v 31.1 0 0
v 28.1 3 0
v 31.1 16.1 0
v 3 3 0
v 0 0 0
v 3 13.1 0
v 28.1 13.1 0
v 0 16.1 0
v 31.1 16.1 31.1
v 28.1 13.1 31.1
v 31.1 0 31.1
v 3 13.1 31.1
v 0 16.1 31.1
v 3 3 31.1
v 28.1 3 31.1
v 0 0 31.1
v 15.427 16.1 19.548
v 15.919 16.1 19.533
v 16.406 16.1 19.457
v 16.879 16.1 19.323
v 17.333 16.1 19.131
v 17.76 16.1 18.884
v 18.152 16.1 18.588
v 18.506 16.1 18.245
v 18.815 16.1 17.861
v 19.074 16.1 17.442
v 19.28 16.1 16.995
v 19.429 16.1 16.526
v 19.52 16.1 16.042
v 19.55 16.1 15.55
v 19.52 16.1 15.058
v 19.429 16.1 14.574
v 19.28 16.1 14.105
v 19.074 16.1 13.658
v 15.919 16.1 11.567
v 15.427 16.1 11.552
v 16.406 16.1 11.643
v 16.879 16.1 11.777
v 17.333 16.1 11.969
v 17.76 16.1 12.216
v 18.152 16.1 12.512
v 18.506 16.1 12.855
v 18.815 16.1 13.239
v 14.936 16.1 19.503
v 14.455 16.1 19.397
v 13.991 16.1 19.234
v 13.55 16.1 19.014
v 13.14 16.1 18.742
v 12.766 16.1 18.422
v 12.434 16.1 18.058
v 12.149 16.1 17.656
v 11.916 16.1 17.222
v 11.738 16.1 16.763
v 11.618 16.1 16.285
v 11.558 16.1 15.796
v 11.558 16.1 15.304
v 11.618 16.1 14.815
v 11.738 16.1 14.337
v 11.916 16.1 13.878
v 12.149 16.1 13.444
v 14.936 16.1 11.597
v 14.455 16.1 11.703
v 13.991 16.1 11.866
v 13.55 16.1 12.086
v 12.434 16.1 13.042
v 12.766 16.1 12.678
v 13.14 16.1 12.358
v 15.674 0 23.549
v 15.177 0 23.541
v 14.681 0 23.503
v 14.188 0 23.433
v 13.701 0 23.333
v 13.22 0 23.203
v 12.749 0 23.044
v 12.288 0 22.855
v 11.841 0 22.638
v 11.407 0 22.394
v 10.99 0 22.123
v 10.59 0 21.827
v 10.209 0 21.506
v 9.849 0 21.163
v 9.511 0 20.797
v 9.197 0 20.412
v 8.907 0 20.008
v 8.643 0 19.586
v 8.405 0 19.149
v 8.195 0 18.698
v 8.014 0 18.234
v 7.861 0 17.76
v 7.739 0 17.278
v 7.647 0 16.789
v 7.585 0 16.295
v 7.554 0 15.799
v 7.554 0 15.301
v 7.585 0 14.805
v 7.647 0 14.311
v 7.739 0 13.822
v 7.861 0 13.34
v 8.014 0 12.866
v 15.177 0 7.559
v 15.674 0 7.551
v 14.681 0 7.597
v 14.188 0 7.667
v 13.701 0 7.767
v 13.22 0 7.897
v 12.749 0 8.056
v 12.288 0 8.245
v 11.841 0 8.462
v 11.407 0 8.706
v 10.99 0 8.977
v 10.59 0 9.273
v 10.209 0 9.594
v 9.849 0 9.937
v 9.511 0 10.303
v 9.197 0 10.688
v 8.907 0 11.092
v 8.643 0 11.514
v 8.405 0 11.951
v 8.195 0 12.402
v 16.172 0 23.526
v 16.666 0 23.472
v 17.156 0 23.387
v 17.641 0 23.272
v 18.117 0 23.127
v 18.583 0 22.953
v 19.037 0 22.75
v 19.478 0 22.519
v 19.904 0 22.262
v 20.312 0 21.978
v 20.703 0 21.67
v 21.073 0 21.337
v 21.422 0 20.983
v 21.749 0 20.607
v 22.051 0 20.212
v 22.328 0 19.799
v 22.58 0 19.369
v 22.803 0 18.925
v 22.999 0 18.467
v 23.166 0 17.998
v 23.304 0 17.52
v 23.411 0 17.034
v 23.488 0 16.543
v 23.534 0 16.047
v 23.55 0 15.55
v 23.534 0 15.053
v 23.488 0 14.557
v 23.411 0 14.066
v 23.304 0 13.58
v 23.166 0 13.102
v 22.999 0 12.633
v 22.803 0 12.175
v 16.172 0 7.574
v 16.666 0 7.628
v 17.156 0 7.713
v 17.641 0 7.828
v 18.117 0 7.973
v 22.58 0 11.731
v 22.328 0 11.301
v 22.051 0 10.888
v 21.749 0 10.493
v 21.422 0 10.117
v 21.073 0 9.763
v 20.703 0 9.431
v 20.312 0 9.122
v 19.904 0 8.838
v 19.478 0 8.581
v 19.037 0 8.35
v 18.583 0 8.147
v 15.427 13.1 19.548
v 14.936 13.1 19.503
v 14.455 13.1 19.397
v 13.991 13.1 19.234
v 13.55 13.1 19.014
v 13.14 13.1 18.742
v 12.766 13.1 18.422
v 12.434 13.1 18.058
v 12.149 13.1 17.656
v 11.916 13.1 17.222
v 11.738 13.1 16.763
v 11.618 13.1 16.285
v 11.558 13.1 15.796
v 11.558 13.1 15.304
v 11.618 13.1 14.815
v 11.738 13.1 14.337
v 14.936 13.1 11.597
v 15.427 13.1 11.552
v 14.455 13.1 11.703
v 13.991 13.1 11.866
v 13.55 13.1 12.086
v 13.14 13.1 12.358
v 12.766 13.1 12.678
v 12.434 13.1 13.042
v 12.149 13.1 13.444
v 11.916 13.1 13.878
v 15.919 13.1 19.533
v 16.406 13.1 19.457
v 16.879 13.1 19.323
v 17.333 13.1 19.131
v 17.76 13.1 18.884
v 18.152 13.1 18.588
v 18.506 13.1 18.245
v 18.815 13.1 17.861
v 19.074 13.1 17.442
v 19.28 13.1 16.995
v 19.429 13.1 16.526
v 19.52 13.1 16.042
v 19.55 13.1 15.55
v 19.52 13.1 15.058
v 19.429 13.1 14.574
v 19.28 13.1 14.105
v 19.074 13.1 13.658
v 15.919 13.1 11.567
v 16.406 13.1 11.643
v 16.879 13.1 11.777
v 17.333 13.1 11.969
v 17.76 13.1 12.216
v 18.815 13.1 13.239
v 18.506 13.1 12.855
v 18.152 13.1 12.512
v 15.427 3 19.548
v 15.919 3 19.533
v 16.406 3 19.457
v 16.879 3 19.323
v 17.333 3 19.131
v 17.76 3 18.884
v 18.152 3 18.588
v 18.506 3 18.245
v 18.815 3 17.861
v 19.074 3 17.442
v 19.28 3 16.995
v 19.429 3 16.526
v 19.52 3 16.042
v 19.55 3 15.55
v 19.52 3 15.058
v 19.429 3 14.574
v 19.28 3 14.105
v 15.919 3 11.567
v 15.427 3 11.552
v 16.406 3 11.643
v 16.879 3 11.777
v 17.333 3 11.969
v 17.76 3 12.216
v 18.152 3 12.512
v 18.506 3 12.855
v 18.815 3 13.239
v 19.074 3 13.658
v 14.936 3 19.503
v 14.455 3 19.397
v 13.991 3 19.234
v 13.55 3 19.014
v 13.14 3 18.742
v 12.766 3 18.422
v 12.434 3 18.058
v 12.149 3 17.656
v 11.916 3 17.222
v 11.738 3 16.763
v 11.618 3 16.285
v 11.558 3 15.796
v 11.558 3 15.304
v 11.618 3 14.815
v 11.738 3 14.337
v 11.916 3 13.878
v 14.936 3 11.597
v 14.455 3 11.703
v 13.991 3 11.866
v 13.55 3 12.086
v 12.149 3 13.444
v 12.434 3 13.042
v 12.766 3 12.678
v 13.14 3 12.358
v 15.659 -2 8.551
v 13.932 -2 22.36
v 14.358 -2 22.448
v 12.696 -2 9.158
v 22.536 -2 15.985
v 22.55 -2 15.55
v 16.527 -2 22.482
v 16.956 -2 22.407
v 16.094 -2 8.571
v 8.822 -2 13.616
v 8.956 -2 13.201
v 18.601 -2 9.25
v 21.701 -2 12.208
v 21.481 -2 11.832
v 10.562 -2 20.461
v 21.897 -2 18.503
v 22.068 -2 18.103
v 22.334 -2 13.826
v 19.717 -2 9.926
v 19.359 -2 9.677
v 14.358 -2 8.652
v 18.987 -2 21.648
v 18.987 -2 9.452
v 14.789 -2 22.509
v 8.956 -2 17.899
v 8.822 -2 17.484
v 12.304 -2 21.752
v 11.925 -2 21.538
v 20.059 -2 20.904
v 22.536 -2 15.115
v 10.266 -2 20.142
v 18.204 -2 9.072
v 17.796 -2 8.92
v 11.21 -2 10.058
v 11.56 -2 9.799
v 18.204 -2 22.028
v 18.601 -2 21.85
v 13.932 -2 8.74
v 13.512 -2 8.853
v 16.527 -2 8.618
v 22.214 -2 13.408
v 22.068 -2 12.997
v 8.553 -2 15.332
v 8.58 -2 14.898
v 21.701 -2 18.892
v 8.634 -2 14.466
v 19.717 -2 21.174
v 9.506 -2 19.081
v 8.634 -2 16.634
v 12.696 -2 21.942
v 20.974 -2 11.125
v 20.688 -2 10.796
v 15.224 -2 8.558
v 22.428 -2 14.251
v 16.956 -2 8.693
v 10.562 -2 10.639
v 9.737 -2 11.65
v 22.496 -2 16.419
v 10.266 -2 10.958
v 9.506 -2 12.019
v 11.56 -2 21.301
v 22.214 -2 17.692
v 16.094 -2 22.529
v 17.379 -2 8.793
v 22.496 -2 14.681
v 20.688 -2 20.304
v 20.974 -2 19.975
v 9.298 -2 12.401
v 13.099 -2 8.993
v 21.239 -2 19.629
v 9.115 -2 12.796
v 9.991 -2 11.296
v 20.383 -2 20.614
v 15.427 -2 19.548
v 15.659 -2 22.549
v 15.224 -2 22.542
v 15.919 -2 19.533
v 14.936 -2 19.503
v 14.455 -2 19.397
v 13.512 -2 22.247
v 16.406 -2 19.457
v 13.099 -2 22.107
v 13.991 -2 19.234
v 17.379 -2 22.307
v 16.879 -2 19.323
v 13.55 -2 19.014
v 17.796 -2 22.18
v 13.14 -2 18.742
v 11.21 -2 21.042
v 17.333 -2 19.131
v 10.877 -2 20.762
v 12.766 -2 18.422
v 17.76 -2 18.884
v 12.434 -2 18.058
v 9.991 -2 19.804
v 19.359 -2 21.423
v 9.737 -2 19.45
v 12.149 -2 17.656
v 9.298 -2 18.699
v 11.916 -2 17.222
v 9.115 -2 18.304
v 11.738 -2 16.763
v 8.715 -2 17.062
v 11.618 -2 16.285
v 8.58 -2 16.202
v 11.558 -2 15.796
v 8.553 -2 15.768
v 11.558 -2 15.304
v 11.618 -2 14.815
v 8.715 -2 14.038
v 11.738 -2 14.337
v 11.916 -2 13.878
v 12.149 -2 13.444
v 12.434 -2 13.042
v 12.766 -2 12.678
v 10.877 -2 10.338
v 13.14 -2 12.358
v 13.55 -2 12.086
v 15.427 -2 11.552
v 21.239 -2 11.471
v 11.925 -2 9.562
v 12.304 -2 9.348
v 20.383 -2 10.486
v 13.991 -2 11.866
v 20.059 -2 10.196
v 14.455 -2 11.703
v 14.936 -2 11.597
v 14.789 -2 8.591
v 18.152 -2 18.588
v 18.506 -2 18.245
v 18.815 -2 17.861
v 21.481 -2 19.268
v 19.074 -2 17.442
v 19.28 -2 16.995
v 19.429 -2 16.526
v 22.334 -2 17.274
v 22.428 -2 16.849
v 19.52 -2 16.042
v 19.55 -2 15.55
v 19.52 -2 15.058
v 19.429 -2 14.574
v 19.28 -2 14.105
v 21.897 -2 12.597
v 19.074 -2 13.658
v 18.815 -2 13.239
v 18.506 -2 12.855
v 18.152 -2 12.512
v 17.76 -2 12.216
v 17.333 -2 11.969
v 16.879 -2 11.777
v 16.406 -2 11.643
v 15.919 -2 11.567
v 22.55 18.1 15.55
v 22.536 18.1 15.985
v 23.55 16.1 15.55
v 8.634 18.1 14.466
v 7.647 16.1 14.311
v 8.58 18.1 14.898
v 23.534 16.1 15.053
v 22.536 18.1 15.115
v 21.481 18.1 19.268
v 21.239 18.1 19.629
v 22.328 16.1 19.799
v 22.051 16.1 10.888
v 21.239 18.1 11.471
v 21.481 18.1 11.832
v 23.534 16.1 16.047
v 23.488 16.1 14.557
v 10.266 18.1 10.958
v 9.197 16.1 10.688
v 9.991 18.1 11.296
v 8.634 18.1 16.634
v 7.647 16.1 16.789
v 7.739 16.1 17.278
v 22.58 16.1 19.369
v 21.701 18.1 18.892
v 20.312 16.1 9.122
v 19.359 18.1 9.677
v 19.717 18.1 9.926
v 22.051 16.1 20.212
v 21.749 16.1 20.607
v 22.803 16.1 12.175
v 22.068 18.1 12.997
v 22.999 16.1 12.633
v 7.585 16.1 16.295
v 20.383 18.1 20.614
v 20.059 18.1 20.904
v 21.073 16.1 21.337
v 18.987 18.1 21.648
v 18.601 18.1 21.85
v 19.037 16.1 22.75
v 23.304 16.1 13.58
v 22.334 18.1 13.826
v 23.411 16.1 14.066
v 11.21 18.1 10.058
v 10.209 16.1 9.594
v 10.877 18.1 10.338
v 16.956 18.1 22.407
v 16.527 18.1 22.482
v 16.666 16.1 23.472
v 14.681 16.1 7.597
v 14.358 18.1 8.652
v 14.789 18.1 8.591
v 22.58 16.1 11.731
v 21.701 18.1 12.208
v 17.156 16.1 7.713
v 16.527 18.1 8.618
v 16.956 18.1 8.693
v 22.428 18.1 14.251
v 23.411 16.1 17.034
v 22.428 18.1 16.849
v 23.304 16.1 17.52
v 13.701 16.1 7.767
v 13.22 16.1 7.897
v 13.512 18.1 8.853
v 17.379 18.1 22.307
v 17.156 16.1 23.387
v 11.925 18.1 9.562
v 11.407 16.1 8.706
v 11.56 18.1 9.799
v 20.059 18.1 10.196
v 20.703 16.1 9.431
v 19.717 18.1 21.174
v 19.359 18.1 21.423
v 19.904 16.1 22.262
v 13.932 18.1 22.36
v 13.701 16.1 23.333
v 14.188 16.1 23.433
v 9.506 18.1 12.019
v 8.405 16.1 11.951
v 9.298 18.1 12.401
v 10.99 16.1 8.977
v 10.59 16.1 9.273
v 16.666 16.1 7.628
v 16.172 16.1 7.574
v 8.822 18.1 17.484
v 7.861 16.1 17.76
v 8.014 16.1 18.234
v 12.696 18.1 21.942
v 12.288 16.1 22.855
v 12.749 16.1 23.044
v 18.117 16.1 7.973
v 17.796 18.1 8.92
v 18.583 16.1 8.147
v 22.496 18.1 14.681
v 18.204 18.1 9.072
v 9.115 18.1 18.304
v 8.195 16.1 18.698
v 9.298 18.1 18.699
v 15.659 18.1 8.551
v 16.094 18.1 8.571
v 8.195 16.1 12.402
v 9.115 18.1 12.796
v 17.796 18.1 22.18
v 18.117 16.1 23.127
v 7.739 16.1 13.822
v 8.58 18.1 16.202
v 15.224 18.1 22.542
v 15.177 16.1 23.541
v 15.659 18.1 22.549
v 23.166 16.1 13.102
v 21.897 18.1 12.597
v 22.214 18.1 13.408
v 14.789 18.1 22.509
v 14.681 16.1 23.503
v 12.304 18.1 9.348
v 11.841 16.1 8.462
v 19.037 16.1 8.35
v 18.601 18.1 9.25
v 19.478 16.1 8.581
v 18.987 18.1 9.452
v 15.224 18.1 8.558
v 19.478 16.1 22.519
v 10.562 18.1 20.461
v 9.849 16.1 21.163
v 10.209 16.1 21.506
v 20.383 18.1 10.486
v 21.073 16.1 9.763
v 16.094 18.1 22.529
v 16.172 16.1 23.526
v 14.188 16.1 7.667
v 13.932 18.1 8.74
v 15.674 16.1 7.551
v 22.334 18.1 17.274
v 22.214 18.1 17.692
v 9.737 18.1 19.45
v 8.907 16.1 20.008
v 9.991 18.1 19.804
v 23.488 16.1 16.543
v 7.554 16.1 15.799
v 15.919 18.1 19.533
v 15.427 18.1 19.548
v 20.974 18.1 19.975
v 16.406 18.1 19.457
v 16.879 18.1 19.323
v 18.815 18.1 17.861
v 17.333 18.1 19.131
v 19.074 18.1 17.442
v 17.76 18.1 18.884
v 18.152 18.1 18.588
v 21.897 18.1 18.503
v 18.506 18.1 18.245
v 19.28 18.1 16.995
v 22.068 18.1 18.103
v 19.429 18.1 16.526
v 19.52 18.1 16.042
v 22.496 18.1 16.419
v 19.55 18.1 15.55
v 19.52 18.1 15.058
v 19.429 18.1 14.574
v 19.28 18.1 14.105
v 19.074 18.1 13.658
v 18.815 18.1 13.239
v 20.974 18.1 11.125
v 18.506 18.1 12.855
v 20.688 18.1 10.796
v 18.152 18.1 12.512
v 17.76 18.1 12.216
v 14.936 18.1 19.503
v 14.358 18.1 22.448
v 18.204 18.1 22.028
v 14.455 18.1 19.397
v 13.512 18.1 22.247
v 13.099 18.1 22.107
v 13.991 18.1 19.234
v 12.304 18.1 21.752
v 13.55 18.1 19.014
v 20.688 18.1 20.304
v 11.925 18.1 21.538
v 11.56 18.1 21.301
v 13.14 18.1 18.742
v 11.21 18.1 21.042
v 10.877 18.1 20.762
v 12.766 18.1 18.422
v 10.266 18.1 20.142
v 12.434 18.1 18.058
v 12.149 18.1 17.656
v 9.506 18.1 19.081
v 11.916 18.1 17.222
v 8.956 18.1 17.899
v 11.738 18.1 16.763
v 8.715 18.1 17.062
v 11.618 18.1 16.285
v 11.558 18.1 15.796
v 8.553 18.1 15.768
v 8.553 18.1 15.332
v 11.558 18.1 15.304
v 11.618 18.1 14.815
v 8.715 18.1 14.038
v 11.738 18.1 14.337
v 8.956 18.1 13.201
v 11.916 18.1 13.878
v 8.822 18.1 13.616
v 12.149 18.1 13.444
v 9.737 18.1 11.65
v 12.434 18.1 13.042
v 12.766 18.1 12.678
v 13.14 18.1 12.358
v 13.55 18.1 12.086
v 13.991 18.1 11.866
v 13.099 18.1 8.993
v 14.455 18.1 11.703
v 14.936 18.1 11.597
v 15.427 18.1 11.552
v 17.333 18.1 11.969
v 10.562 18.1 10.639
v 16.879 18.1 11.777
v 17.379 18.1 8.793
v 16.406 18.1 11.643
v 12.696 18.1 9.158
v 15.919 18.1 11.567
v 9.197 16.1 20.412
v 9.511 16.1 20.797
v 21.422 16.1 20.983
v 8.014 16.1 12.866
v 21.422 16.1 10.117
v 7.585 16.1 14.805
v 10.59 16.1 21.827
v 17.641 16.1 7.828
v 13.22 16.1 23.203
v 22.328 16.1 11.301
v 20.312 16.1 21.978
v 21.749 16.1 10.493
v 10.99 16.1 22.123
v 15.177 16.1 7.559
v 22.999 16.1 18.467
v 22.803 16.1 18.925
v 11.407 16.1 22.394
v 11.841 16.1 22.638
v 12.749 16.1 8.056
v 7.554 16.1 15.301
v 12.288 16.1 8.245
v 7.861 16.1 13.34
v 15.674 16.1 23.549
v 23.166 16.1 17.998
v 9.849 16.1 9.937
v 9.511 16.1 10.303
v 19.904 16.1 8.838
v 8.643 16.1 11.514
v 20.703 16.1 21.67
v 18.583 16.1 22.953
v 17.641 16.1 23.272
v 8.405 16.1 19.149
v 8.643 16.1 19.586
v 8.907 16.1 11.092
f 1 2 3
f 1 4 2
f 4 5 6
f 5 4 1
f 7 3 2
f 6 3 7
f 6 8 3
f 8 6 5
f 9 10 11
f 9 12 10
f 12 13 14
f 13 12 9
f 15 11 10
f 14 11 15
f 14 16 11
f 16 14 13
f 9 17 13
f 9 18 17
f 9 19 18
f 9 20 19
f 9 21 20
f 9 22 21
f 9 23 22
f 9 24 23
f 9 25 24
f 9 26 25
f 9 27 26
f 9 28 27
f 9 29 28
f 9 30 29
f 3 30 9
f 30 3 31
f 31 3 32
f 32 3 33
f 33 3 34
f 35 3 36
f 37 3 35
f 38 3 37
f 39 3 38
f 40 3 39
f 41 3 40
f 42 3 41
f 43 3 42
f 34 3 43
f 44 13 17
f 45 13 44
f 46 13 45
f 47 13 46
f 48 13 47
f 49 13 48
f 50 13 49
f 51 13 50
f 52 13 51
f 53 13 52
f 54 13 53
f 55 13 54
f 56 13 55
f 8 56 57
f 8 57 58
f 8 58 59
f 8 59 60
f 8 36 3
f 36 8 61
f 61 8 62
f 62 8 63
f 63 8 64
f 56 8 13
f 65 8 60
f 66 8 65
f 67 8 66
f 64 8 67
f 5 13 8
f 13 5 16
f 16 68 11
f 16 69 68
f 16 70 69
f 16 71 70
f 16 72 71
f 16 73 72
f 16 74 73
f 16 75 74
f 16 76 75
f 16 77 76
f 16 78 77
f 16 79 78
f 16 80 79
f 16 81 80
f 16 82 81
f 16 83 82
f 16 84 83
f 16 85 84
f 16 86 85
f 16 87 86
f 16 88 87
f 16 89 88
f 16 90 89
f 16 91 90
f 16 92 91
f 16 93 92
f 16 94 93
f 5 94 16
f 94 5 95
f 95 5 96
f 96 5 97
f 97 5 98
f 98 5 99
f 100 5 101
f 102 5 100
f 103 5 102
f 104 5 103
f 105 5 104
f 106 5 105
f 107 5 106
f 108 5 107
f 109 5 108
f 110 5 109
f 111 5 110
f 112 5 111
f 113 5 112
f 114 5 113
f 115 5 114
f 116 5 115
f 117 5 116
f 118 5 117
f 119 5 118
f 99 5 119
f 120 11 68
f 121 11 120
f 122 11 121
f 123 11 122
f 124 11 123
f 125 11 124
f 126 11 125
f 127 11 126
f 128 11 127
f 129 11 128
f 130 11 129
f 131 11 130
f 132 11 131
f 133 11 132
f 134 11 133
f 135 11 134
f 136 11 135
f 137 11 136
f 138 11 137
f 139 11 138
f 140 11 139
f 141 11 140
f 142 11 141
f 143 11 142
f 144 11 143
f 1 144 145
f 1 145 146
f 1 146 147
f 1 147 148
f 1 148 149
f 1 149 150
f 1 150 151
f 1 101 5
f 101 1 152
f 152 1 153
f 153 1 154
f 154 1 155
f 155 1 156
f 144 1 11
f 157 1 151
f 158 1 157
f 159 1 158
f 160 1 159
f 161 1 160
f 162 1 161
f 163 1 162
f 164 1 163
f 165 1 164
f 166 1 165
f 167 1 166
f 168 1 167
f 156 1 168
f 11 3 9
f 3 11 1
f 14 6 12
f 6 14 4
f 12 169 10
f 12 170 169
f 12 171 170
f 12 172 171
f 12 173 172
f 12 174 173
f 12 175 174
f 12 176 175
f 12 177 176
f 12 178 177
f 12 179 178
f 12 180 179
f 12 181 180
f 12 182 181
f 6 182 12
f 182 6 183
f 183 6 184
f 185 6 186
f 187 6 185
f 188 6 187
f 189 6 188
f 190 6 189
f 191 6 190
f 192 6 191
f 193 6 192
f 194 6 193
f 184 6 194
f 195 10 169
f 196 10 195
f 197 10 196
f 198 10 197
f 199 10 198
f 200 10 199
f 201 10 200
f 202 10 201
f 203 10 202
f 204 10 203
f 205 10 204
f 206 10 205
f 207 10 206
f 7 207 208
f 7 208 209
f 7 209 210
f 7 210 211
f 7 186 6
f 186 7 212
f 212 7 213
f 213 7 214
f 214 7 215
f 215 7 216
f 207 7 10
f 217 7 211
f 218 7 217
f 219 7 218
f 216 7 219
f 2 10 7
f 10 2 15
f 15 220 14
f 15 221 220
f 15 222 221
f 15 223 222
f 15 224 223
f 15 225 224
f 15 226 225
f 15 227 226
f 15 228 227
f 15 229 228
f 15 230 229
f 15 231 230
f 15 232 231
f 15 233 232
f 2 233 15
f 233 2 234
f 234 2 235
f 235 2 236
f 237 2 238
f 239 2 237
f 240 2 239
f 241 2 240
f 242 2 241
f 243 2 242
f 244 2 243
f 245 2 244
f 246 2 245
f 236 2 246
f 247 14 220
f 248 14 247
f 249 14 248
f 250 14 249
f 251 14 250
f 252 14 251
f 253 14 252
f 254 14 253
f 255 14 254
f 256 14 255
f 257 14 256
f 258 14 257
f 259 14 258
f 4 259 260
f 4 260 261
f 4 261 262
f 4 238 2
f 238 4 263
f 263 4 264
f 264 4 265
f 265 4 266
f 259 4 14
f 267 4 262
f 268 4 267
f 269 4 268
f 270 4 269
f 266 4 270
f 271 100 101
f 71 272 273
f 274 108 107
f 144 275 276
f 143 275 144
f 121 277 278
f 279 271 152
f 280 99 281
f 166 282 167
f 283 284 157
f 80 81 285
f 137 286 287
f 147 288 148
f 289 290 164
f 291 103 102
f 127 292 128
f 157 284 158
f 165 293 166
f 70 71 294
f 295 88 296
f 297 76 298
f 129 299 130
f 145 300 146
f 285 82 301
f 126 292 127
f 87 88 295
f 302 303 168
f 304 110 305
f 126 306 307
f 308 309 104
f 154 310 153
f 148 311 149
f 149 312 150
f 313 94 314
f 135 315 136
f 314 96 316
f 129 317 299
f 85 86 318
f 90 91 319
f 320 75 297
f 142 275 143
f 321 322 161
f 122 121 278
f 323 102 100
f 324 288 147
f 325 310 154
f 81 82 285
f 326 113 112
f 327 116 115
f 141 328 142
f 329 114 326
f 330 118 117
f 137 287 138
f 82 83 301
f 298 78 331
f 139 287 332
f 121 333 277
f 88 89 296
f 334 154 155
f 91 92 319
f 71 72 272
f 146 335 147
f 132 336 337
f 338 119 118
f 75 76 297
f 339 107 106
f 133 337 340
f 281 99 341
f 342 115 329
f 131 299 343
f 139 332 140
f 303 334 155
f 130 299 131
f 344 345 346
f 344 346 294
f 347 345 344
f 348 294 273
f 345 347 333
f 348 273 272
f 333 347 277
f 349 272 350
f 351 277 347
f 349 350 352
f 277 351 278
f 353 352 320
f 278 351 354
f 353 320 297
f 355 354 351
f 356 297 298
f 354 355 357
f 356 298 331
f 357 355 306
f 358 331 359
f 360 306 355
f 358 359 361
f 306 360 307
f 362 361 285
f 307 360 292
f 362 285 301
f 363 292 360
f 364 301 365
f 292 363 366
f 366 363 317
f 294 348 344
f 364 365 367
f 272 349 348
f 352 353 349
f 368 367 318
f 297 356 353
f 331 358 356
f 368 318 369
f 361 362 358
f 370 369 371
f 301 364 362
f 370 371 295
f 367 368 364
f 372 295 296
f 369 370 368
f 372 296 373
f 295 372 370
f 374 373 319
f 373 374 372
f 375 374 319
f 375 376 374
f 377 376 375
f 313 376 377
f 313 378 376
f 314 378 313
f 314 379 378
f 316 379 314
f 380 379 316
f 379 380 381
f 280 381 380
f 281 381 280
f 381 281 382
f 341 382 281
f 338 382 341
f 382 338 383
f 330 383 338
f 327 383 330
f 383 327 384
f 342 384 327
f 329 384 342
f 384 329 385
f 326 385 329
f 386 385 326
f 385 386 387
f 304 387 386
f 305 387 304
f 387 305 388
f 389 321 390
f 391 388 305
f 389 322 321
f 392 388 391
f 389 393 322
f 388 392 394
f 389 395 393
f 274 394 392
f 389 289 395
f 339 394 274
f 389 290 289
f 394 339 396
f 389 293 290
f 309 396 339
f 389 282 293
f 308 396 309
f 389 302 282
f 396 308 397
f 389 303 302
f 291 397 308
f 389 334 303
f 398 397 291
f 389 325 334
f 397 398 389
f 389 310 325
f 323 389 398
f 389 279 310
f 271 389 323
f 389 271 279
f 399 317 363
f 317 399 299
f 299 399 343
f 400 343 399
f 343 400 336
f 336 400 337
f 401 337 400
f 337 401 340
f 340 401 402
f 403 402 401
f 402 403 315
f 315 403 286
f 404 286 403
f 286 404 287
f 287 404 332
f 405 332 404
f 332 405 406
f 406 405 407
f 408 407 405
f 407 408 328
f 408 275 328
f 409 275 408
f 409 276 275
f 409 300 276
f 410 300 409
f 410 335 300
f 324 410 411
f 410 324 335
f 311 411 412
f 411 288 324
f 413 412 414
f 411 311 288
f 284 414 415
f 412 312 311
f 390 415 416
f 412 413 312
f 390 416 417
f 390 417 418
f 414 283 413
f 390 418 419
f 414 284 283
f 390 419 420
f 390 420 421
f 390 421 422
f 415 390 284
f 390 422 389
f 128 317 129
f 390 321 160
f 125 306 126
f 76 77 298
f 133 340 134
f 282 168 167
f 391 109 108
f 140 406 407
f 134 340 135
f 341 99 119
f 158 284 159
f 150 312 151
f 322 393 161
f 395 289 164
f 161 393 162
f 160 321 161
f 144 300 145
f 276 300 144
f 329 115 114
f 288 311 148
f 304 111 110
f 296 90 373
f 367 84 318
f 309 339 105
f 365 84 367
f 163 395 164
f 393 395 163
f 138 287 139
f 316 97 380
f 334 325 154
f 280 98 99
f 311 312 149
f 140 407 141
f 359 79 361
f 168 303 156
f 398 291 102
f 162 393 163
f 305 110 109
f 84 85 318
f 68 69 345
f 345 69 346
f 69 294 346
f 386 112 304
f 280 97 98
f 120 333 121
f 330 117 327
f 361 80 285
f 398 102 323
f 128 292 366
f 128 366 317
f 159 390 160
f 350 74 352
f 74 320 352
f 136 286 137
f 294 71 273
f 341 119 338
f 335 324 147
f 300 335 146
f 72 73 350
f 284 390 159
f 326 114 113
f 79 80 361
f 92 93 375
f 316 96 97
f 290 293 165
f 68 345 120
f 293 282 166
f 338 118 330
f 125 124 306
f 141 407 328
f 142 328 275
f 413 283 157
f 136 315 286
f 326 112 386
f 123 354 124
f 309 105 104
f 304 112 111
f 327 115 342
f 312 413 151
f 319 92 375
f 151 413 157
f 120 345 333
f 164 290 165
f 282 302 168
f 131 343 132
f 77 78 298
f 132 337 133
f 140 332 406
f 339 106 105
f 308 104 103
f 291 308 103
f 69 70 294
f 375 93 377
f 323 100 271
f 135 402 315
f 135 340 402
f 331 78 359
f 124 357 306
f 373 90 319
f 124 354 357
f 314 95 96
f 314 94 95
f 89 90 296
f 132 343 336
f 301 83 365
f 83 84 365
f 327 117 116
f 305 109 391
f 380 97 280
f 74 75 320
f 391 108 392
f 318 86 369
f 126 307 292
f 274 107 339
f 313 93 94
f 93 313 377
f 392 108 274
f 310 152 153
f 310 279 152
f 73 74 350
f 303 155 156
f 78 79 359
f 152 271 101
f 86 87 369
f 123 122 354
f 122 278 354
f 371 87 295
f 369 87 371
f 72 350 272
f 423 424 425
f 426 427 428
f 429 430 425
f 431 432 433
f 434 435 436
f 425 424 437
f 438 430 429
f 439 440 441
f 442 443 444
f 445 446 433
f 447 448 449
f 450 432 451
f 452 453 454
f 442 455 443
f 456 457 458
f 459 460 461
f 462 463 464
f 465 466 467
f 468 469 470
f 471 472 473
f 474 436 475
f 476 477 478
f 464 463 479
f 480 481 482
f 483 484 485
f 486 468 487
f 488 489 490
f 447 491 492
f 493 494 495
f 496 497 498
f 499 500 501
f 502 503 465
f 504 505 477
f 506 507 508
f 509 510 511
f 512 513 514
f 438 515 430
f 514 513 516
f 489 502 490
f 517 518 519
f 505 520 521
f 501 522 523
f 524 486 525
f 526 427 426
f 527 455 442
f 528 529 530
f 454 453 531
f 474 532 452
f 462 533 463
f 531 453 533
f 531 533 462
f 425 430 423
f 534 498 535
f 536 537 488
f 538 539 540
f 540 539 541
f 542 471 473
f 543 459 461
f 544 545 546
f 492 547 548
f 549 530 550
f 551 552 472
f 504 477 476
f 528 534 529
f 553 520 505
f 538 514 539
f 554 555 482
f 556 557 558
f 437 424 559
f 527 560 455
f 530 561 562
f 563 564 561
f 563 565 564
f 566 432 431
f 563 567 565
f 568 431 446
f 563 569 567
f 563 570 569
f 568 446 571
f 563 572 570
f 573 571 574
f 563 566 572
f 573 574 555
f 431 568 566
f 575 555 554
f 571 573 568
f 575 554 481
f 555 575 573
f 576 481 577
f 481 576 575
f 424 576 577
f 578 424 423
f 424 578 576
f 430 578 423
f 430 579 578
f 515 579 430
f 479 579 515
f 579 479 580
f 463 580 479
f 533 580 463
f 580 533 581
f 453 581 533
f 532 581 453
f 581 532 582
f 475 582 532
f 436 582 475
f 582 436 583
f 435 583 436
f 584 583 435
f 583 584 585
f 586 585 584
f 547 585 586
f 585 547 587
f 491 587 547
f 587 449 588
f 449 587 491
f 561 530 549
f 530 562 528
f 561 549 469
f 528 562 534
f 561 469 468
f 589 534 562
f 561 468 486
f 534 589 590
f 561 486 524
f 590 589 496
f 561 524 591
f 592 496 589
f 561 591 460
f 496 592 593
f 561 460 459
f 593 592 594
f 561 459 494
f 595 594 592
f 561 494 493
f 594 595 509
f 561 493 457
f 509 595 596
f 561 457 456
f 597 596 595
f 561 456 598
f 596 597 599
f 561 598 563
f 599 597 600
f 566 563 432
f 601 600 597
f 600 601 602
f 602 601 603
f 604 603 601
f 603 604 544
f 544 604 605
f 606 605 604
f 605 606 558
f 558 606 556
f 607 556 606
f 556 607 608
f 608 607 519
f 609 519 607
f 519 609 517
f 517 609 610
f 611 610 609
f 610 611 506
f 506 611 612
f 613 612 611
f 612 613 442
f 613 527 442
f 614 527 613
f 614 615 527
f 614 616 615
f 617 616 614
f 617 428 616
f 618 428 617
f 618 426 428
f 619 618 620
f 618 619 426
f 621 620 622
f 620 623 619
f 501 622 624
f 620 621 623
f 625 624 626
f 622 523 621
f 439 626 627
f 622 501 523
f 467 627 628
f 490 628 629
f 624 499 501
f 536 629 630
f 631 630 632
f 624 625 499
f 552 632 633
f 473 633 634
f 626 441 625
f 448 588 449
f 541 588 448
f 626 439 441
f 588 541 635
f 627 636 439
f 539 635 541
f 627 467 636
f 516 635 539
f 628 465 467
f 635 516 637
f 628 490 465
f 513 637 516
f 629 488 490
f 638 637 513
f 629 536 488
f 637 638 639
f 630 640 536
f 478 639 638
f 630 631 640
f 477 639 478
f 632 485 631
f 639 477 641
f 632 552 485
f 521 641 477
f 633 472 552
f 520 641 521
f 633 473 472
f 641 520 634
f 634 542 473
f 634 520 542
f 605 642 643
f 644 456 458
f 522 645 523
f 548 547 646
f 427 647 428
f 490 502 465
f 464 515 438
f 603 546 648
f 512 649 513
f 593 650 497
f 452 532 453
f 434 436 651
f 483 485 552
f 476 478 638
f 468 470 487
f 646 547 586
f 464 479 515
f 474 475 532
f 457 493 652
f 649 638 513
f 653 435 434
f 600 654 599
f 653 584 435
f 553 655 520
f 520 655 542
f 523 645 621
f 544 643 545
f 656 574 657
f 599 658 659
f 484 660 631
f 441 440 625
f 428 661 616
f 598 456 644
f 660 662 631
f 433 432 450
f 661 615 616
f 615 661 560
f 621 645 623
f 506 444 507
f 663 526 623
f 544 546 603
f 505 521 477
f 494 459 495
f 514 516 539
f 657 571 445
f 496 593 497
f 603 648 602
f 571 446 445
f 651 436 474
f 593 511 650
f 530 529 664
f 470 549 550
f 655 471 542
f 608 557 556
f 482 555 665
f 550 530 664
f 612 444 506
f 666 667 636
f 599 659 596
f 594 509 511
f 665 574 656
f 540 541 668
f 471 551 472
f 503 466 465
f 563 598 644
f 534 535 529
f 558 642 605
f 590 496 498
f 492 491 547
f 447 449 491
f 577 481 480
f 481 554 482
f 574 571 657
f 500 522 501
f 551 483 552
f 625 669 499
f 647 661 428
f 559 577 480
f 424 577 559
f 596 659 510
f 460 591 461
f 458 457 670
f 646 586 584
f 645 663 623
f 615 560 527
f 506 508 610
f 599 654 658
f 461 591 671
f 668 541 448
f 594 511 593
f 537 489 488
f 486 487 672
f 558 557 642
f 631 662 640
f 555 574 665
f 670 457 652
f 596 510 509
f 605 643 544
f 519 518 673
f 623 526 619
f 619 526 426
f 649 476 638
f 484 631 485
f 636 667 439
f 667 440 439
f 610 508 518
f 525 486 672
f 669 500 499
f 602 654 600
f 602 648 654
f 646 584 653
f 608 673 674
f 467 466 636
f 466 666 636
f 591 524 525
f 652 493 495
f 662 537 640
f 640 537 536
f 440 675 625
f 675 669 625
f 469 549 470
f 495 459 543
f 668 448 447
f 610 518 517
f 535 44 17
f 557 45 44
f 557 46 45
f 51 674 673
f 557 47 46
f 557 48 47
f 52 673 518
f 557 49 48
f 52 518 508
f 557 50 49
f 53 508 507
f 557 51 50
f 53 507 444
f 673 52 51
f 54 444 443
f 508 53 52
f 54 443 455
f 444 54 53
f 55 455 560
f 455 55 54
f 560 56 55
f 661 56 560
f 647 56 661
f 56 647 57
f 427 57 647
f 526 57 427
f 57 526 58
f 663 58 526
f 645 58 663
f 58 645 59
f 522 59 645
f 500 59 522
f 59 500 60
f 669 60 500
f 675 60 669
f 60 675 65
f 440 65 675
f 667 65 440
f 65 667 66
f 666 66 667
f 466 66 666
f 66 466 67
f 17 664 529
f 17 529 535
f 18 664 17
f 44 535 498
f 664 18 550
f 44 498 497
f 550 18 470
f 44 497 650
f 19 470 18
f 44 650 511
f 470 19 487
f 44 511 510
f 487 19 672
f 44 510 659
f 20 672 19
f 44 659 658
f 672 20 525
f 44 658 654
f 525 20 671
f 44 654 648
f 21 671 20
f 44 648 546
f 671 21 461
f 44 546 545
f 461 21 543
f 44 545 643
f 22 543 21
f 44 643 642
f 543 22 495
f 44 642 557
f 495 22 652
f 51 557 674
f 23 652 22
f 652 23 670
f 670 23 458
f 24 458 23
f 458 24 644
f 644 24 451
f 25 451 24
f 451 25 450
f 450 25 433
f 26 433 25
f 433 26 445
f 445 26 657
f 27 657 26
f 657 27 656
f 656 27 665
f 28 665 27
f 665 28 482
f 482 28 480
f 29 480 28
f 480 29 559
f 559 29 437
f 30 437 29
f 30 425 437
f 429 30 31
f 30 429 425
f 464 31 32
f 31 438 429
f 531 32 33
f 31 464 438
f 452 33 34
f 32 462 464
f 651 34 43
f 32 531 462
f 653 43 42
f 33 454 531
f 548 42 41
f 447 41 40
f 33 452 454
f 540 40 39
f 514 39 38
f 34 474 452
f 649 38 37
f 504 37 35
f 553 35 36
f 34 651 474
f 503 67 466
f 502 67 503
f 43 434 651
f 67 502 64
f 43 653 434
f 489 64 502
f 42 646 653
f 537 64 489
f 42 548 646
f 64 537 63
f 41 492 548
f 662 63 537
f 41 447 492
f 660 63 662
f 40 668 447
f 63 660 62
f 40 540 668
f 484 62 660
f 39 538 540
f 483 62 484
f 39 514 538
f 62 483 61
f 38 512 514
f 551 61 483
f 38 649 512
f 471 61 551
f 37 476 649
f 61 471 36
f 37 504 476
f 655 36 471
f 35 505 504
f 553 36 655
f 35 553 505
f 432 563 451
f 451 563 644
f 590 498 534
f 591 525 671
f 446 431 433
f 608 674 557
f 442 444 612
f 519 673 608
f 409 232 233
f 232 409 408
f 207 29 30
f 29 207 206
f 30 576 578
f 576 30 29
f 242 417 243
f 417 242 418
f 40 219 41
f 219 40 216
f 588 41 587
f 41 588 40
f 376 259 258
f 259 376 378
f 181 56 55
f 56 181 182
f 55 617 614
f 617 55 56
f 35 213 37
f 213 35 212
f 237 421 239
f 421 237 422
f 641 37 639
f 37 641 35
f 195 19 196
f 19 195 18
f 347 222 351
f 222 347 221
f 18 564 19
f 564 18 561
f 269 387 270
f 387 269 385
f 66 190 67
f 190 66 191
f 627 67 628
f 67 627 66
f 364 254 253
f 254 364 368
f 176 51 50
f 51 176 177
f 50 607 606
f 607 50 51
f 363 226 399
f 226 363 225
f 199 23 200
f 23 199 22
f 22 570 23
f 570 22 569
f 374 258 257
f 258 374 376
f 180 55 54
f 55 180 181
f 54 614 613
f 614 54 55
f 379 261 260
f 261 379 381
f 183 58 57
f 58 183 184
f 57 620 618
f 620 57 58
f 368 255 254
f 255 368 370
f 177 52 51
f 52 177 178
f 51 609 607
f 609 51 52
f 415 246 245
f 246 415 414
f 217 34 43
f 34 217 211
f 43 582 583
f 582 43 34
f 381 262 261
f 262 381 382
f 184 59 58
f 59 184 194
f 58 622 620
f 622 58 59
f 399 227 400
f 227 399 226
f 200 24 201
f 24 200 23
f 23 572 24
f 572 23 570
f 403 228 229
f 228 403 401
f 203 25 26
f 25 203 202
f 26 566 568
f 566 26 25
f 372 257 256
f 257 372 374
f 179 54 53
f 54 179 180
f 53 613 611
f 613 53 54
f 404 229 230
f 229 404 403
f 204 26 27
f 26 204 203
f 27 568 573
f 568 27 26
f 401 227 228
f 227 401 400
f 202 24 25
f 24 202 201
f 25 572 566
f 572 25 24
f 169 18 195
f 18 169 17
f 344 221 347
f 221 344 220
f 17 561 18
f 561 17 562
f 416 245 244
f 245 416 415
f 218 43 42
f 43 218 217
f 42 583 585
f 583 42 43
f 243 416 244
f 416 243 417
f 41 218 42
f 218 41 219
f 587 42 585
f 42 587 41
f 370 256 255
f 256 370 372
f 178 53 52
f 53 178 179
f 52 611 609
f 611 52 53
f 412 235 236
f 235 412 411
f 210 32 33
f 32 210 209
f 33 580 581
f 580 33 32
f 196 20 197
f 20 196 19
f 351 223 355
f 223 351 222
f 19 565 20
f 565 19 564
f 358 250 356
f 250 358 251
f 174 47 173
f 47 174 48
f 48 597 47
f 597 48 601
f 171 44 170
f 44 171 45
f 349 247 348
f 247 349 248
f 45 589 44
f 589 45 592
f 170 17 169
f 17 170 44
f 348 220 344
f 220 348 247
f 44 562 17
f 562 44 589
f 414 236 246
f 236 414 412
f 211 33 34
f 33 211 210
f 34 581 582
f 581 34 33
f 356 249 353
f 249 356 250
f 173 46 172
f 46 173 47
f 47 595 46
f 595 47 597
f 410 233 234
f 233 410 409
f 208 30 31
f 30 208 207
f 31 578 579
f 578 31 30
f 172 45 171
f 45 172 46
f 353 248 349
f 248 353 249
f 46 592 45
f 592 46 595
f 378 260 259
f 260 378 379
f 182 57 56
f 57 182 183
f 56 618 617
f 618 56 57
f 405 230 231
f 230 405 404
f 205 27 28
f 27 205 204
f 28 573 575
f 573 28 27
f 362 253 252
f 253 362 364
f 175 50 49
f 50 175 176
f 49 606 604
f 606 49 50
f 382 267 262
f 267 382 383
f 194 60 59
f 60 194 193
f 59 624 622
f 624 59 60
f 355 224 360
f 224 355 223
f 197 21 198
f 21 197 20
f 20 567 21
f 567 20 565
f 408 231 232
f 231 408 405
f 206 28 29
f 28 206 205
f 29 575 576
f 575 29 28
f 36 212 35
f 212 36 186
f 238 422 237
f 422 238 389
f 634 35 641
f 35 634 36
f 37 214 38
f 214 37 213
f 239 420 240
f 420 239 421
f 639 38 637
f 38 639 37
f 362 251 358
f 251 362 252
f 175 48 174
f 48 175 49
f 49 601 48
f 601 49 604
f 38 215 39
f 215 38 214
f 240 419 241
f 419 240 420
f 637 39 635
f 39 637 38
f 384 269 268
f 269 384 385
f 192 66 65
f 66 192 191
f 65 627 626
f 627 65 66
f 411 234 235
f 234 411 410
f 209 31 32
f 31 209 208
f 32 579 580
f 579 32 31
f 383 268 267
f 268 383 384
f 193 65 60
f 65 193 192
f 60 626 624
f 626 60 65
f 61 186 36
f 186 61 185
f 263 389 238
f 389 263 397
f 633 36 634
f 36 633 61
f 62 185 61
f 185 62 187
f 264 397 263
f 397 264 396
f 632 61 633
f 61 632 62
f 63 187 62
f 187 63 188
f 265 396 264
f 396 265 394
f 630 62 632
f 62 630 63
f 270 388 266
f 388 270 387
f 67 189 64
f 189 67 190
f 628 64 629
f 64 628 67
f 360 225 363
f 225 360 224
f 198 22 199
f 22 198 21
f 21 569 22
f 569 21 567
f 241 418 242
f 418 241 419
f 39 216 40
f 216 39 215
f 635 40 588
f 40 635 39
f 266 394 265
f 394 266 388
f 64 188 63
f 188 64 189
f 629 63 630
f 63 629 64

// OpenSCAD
thickness = 3;
inner_width = 25.1;
inner_height = 10.1;
sleeve_length = inner_width + 2 * thickness;

spacer_thickness = 2;
spacer_diam = 14;

hole_diam = 8;
hole_depth = spacer_thickness * 2 + thickness * 2 + inner_height;

nothing = 0.01;

$fa=1;
$fs=0.5;

module sleeve() {
  linear_extrude(sleeve_length) {
    difference() {
      square([inner_width + 2 * thickness, inner_height + 2 * thickness]);
      translate([thickness, thickness]) {
        square([inner_width, inner_height]);
      }
    }
  }
}

module spacer() {
  rotate(90,[1,0,0]) {
    cylinder(spacer_thickness, 
        d1 = spacer_diam +spacer_thickness, 
        d2 = spacer_diam
    );
  }
}

module main() {
  sleeve_centre = inner_width/2 +  thickness;

  difference() {
    union() {
      sleeve();
      translate([sleeve_centre,0,sleeve_centre]) {
        spacer();
      }
      translate([sleeve_centre,inner_height + 2 * thickness,sleeve_centre]) {
        scale([1,-1,1]) {
          spacer();
        }
      }
    }
    translate([sleeve_centre,-spacer_thickness-nothing,sleeve_centre]) {
      rotate(-90,[1,0,0]) {
        linear_extrude(hole_depth + 2 * nothing) {
          circle(d=hole_diam);
        }
      }
    }
  }
}

main();
